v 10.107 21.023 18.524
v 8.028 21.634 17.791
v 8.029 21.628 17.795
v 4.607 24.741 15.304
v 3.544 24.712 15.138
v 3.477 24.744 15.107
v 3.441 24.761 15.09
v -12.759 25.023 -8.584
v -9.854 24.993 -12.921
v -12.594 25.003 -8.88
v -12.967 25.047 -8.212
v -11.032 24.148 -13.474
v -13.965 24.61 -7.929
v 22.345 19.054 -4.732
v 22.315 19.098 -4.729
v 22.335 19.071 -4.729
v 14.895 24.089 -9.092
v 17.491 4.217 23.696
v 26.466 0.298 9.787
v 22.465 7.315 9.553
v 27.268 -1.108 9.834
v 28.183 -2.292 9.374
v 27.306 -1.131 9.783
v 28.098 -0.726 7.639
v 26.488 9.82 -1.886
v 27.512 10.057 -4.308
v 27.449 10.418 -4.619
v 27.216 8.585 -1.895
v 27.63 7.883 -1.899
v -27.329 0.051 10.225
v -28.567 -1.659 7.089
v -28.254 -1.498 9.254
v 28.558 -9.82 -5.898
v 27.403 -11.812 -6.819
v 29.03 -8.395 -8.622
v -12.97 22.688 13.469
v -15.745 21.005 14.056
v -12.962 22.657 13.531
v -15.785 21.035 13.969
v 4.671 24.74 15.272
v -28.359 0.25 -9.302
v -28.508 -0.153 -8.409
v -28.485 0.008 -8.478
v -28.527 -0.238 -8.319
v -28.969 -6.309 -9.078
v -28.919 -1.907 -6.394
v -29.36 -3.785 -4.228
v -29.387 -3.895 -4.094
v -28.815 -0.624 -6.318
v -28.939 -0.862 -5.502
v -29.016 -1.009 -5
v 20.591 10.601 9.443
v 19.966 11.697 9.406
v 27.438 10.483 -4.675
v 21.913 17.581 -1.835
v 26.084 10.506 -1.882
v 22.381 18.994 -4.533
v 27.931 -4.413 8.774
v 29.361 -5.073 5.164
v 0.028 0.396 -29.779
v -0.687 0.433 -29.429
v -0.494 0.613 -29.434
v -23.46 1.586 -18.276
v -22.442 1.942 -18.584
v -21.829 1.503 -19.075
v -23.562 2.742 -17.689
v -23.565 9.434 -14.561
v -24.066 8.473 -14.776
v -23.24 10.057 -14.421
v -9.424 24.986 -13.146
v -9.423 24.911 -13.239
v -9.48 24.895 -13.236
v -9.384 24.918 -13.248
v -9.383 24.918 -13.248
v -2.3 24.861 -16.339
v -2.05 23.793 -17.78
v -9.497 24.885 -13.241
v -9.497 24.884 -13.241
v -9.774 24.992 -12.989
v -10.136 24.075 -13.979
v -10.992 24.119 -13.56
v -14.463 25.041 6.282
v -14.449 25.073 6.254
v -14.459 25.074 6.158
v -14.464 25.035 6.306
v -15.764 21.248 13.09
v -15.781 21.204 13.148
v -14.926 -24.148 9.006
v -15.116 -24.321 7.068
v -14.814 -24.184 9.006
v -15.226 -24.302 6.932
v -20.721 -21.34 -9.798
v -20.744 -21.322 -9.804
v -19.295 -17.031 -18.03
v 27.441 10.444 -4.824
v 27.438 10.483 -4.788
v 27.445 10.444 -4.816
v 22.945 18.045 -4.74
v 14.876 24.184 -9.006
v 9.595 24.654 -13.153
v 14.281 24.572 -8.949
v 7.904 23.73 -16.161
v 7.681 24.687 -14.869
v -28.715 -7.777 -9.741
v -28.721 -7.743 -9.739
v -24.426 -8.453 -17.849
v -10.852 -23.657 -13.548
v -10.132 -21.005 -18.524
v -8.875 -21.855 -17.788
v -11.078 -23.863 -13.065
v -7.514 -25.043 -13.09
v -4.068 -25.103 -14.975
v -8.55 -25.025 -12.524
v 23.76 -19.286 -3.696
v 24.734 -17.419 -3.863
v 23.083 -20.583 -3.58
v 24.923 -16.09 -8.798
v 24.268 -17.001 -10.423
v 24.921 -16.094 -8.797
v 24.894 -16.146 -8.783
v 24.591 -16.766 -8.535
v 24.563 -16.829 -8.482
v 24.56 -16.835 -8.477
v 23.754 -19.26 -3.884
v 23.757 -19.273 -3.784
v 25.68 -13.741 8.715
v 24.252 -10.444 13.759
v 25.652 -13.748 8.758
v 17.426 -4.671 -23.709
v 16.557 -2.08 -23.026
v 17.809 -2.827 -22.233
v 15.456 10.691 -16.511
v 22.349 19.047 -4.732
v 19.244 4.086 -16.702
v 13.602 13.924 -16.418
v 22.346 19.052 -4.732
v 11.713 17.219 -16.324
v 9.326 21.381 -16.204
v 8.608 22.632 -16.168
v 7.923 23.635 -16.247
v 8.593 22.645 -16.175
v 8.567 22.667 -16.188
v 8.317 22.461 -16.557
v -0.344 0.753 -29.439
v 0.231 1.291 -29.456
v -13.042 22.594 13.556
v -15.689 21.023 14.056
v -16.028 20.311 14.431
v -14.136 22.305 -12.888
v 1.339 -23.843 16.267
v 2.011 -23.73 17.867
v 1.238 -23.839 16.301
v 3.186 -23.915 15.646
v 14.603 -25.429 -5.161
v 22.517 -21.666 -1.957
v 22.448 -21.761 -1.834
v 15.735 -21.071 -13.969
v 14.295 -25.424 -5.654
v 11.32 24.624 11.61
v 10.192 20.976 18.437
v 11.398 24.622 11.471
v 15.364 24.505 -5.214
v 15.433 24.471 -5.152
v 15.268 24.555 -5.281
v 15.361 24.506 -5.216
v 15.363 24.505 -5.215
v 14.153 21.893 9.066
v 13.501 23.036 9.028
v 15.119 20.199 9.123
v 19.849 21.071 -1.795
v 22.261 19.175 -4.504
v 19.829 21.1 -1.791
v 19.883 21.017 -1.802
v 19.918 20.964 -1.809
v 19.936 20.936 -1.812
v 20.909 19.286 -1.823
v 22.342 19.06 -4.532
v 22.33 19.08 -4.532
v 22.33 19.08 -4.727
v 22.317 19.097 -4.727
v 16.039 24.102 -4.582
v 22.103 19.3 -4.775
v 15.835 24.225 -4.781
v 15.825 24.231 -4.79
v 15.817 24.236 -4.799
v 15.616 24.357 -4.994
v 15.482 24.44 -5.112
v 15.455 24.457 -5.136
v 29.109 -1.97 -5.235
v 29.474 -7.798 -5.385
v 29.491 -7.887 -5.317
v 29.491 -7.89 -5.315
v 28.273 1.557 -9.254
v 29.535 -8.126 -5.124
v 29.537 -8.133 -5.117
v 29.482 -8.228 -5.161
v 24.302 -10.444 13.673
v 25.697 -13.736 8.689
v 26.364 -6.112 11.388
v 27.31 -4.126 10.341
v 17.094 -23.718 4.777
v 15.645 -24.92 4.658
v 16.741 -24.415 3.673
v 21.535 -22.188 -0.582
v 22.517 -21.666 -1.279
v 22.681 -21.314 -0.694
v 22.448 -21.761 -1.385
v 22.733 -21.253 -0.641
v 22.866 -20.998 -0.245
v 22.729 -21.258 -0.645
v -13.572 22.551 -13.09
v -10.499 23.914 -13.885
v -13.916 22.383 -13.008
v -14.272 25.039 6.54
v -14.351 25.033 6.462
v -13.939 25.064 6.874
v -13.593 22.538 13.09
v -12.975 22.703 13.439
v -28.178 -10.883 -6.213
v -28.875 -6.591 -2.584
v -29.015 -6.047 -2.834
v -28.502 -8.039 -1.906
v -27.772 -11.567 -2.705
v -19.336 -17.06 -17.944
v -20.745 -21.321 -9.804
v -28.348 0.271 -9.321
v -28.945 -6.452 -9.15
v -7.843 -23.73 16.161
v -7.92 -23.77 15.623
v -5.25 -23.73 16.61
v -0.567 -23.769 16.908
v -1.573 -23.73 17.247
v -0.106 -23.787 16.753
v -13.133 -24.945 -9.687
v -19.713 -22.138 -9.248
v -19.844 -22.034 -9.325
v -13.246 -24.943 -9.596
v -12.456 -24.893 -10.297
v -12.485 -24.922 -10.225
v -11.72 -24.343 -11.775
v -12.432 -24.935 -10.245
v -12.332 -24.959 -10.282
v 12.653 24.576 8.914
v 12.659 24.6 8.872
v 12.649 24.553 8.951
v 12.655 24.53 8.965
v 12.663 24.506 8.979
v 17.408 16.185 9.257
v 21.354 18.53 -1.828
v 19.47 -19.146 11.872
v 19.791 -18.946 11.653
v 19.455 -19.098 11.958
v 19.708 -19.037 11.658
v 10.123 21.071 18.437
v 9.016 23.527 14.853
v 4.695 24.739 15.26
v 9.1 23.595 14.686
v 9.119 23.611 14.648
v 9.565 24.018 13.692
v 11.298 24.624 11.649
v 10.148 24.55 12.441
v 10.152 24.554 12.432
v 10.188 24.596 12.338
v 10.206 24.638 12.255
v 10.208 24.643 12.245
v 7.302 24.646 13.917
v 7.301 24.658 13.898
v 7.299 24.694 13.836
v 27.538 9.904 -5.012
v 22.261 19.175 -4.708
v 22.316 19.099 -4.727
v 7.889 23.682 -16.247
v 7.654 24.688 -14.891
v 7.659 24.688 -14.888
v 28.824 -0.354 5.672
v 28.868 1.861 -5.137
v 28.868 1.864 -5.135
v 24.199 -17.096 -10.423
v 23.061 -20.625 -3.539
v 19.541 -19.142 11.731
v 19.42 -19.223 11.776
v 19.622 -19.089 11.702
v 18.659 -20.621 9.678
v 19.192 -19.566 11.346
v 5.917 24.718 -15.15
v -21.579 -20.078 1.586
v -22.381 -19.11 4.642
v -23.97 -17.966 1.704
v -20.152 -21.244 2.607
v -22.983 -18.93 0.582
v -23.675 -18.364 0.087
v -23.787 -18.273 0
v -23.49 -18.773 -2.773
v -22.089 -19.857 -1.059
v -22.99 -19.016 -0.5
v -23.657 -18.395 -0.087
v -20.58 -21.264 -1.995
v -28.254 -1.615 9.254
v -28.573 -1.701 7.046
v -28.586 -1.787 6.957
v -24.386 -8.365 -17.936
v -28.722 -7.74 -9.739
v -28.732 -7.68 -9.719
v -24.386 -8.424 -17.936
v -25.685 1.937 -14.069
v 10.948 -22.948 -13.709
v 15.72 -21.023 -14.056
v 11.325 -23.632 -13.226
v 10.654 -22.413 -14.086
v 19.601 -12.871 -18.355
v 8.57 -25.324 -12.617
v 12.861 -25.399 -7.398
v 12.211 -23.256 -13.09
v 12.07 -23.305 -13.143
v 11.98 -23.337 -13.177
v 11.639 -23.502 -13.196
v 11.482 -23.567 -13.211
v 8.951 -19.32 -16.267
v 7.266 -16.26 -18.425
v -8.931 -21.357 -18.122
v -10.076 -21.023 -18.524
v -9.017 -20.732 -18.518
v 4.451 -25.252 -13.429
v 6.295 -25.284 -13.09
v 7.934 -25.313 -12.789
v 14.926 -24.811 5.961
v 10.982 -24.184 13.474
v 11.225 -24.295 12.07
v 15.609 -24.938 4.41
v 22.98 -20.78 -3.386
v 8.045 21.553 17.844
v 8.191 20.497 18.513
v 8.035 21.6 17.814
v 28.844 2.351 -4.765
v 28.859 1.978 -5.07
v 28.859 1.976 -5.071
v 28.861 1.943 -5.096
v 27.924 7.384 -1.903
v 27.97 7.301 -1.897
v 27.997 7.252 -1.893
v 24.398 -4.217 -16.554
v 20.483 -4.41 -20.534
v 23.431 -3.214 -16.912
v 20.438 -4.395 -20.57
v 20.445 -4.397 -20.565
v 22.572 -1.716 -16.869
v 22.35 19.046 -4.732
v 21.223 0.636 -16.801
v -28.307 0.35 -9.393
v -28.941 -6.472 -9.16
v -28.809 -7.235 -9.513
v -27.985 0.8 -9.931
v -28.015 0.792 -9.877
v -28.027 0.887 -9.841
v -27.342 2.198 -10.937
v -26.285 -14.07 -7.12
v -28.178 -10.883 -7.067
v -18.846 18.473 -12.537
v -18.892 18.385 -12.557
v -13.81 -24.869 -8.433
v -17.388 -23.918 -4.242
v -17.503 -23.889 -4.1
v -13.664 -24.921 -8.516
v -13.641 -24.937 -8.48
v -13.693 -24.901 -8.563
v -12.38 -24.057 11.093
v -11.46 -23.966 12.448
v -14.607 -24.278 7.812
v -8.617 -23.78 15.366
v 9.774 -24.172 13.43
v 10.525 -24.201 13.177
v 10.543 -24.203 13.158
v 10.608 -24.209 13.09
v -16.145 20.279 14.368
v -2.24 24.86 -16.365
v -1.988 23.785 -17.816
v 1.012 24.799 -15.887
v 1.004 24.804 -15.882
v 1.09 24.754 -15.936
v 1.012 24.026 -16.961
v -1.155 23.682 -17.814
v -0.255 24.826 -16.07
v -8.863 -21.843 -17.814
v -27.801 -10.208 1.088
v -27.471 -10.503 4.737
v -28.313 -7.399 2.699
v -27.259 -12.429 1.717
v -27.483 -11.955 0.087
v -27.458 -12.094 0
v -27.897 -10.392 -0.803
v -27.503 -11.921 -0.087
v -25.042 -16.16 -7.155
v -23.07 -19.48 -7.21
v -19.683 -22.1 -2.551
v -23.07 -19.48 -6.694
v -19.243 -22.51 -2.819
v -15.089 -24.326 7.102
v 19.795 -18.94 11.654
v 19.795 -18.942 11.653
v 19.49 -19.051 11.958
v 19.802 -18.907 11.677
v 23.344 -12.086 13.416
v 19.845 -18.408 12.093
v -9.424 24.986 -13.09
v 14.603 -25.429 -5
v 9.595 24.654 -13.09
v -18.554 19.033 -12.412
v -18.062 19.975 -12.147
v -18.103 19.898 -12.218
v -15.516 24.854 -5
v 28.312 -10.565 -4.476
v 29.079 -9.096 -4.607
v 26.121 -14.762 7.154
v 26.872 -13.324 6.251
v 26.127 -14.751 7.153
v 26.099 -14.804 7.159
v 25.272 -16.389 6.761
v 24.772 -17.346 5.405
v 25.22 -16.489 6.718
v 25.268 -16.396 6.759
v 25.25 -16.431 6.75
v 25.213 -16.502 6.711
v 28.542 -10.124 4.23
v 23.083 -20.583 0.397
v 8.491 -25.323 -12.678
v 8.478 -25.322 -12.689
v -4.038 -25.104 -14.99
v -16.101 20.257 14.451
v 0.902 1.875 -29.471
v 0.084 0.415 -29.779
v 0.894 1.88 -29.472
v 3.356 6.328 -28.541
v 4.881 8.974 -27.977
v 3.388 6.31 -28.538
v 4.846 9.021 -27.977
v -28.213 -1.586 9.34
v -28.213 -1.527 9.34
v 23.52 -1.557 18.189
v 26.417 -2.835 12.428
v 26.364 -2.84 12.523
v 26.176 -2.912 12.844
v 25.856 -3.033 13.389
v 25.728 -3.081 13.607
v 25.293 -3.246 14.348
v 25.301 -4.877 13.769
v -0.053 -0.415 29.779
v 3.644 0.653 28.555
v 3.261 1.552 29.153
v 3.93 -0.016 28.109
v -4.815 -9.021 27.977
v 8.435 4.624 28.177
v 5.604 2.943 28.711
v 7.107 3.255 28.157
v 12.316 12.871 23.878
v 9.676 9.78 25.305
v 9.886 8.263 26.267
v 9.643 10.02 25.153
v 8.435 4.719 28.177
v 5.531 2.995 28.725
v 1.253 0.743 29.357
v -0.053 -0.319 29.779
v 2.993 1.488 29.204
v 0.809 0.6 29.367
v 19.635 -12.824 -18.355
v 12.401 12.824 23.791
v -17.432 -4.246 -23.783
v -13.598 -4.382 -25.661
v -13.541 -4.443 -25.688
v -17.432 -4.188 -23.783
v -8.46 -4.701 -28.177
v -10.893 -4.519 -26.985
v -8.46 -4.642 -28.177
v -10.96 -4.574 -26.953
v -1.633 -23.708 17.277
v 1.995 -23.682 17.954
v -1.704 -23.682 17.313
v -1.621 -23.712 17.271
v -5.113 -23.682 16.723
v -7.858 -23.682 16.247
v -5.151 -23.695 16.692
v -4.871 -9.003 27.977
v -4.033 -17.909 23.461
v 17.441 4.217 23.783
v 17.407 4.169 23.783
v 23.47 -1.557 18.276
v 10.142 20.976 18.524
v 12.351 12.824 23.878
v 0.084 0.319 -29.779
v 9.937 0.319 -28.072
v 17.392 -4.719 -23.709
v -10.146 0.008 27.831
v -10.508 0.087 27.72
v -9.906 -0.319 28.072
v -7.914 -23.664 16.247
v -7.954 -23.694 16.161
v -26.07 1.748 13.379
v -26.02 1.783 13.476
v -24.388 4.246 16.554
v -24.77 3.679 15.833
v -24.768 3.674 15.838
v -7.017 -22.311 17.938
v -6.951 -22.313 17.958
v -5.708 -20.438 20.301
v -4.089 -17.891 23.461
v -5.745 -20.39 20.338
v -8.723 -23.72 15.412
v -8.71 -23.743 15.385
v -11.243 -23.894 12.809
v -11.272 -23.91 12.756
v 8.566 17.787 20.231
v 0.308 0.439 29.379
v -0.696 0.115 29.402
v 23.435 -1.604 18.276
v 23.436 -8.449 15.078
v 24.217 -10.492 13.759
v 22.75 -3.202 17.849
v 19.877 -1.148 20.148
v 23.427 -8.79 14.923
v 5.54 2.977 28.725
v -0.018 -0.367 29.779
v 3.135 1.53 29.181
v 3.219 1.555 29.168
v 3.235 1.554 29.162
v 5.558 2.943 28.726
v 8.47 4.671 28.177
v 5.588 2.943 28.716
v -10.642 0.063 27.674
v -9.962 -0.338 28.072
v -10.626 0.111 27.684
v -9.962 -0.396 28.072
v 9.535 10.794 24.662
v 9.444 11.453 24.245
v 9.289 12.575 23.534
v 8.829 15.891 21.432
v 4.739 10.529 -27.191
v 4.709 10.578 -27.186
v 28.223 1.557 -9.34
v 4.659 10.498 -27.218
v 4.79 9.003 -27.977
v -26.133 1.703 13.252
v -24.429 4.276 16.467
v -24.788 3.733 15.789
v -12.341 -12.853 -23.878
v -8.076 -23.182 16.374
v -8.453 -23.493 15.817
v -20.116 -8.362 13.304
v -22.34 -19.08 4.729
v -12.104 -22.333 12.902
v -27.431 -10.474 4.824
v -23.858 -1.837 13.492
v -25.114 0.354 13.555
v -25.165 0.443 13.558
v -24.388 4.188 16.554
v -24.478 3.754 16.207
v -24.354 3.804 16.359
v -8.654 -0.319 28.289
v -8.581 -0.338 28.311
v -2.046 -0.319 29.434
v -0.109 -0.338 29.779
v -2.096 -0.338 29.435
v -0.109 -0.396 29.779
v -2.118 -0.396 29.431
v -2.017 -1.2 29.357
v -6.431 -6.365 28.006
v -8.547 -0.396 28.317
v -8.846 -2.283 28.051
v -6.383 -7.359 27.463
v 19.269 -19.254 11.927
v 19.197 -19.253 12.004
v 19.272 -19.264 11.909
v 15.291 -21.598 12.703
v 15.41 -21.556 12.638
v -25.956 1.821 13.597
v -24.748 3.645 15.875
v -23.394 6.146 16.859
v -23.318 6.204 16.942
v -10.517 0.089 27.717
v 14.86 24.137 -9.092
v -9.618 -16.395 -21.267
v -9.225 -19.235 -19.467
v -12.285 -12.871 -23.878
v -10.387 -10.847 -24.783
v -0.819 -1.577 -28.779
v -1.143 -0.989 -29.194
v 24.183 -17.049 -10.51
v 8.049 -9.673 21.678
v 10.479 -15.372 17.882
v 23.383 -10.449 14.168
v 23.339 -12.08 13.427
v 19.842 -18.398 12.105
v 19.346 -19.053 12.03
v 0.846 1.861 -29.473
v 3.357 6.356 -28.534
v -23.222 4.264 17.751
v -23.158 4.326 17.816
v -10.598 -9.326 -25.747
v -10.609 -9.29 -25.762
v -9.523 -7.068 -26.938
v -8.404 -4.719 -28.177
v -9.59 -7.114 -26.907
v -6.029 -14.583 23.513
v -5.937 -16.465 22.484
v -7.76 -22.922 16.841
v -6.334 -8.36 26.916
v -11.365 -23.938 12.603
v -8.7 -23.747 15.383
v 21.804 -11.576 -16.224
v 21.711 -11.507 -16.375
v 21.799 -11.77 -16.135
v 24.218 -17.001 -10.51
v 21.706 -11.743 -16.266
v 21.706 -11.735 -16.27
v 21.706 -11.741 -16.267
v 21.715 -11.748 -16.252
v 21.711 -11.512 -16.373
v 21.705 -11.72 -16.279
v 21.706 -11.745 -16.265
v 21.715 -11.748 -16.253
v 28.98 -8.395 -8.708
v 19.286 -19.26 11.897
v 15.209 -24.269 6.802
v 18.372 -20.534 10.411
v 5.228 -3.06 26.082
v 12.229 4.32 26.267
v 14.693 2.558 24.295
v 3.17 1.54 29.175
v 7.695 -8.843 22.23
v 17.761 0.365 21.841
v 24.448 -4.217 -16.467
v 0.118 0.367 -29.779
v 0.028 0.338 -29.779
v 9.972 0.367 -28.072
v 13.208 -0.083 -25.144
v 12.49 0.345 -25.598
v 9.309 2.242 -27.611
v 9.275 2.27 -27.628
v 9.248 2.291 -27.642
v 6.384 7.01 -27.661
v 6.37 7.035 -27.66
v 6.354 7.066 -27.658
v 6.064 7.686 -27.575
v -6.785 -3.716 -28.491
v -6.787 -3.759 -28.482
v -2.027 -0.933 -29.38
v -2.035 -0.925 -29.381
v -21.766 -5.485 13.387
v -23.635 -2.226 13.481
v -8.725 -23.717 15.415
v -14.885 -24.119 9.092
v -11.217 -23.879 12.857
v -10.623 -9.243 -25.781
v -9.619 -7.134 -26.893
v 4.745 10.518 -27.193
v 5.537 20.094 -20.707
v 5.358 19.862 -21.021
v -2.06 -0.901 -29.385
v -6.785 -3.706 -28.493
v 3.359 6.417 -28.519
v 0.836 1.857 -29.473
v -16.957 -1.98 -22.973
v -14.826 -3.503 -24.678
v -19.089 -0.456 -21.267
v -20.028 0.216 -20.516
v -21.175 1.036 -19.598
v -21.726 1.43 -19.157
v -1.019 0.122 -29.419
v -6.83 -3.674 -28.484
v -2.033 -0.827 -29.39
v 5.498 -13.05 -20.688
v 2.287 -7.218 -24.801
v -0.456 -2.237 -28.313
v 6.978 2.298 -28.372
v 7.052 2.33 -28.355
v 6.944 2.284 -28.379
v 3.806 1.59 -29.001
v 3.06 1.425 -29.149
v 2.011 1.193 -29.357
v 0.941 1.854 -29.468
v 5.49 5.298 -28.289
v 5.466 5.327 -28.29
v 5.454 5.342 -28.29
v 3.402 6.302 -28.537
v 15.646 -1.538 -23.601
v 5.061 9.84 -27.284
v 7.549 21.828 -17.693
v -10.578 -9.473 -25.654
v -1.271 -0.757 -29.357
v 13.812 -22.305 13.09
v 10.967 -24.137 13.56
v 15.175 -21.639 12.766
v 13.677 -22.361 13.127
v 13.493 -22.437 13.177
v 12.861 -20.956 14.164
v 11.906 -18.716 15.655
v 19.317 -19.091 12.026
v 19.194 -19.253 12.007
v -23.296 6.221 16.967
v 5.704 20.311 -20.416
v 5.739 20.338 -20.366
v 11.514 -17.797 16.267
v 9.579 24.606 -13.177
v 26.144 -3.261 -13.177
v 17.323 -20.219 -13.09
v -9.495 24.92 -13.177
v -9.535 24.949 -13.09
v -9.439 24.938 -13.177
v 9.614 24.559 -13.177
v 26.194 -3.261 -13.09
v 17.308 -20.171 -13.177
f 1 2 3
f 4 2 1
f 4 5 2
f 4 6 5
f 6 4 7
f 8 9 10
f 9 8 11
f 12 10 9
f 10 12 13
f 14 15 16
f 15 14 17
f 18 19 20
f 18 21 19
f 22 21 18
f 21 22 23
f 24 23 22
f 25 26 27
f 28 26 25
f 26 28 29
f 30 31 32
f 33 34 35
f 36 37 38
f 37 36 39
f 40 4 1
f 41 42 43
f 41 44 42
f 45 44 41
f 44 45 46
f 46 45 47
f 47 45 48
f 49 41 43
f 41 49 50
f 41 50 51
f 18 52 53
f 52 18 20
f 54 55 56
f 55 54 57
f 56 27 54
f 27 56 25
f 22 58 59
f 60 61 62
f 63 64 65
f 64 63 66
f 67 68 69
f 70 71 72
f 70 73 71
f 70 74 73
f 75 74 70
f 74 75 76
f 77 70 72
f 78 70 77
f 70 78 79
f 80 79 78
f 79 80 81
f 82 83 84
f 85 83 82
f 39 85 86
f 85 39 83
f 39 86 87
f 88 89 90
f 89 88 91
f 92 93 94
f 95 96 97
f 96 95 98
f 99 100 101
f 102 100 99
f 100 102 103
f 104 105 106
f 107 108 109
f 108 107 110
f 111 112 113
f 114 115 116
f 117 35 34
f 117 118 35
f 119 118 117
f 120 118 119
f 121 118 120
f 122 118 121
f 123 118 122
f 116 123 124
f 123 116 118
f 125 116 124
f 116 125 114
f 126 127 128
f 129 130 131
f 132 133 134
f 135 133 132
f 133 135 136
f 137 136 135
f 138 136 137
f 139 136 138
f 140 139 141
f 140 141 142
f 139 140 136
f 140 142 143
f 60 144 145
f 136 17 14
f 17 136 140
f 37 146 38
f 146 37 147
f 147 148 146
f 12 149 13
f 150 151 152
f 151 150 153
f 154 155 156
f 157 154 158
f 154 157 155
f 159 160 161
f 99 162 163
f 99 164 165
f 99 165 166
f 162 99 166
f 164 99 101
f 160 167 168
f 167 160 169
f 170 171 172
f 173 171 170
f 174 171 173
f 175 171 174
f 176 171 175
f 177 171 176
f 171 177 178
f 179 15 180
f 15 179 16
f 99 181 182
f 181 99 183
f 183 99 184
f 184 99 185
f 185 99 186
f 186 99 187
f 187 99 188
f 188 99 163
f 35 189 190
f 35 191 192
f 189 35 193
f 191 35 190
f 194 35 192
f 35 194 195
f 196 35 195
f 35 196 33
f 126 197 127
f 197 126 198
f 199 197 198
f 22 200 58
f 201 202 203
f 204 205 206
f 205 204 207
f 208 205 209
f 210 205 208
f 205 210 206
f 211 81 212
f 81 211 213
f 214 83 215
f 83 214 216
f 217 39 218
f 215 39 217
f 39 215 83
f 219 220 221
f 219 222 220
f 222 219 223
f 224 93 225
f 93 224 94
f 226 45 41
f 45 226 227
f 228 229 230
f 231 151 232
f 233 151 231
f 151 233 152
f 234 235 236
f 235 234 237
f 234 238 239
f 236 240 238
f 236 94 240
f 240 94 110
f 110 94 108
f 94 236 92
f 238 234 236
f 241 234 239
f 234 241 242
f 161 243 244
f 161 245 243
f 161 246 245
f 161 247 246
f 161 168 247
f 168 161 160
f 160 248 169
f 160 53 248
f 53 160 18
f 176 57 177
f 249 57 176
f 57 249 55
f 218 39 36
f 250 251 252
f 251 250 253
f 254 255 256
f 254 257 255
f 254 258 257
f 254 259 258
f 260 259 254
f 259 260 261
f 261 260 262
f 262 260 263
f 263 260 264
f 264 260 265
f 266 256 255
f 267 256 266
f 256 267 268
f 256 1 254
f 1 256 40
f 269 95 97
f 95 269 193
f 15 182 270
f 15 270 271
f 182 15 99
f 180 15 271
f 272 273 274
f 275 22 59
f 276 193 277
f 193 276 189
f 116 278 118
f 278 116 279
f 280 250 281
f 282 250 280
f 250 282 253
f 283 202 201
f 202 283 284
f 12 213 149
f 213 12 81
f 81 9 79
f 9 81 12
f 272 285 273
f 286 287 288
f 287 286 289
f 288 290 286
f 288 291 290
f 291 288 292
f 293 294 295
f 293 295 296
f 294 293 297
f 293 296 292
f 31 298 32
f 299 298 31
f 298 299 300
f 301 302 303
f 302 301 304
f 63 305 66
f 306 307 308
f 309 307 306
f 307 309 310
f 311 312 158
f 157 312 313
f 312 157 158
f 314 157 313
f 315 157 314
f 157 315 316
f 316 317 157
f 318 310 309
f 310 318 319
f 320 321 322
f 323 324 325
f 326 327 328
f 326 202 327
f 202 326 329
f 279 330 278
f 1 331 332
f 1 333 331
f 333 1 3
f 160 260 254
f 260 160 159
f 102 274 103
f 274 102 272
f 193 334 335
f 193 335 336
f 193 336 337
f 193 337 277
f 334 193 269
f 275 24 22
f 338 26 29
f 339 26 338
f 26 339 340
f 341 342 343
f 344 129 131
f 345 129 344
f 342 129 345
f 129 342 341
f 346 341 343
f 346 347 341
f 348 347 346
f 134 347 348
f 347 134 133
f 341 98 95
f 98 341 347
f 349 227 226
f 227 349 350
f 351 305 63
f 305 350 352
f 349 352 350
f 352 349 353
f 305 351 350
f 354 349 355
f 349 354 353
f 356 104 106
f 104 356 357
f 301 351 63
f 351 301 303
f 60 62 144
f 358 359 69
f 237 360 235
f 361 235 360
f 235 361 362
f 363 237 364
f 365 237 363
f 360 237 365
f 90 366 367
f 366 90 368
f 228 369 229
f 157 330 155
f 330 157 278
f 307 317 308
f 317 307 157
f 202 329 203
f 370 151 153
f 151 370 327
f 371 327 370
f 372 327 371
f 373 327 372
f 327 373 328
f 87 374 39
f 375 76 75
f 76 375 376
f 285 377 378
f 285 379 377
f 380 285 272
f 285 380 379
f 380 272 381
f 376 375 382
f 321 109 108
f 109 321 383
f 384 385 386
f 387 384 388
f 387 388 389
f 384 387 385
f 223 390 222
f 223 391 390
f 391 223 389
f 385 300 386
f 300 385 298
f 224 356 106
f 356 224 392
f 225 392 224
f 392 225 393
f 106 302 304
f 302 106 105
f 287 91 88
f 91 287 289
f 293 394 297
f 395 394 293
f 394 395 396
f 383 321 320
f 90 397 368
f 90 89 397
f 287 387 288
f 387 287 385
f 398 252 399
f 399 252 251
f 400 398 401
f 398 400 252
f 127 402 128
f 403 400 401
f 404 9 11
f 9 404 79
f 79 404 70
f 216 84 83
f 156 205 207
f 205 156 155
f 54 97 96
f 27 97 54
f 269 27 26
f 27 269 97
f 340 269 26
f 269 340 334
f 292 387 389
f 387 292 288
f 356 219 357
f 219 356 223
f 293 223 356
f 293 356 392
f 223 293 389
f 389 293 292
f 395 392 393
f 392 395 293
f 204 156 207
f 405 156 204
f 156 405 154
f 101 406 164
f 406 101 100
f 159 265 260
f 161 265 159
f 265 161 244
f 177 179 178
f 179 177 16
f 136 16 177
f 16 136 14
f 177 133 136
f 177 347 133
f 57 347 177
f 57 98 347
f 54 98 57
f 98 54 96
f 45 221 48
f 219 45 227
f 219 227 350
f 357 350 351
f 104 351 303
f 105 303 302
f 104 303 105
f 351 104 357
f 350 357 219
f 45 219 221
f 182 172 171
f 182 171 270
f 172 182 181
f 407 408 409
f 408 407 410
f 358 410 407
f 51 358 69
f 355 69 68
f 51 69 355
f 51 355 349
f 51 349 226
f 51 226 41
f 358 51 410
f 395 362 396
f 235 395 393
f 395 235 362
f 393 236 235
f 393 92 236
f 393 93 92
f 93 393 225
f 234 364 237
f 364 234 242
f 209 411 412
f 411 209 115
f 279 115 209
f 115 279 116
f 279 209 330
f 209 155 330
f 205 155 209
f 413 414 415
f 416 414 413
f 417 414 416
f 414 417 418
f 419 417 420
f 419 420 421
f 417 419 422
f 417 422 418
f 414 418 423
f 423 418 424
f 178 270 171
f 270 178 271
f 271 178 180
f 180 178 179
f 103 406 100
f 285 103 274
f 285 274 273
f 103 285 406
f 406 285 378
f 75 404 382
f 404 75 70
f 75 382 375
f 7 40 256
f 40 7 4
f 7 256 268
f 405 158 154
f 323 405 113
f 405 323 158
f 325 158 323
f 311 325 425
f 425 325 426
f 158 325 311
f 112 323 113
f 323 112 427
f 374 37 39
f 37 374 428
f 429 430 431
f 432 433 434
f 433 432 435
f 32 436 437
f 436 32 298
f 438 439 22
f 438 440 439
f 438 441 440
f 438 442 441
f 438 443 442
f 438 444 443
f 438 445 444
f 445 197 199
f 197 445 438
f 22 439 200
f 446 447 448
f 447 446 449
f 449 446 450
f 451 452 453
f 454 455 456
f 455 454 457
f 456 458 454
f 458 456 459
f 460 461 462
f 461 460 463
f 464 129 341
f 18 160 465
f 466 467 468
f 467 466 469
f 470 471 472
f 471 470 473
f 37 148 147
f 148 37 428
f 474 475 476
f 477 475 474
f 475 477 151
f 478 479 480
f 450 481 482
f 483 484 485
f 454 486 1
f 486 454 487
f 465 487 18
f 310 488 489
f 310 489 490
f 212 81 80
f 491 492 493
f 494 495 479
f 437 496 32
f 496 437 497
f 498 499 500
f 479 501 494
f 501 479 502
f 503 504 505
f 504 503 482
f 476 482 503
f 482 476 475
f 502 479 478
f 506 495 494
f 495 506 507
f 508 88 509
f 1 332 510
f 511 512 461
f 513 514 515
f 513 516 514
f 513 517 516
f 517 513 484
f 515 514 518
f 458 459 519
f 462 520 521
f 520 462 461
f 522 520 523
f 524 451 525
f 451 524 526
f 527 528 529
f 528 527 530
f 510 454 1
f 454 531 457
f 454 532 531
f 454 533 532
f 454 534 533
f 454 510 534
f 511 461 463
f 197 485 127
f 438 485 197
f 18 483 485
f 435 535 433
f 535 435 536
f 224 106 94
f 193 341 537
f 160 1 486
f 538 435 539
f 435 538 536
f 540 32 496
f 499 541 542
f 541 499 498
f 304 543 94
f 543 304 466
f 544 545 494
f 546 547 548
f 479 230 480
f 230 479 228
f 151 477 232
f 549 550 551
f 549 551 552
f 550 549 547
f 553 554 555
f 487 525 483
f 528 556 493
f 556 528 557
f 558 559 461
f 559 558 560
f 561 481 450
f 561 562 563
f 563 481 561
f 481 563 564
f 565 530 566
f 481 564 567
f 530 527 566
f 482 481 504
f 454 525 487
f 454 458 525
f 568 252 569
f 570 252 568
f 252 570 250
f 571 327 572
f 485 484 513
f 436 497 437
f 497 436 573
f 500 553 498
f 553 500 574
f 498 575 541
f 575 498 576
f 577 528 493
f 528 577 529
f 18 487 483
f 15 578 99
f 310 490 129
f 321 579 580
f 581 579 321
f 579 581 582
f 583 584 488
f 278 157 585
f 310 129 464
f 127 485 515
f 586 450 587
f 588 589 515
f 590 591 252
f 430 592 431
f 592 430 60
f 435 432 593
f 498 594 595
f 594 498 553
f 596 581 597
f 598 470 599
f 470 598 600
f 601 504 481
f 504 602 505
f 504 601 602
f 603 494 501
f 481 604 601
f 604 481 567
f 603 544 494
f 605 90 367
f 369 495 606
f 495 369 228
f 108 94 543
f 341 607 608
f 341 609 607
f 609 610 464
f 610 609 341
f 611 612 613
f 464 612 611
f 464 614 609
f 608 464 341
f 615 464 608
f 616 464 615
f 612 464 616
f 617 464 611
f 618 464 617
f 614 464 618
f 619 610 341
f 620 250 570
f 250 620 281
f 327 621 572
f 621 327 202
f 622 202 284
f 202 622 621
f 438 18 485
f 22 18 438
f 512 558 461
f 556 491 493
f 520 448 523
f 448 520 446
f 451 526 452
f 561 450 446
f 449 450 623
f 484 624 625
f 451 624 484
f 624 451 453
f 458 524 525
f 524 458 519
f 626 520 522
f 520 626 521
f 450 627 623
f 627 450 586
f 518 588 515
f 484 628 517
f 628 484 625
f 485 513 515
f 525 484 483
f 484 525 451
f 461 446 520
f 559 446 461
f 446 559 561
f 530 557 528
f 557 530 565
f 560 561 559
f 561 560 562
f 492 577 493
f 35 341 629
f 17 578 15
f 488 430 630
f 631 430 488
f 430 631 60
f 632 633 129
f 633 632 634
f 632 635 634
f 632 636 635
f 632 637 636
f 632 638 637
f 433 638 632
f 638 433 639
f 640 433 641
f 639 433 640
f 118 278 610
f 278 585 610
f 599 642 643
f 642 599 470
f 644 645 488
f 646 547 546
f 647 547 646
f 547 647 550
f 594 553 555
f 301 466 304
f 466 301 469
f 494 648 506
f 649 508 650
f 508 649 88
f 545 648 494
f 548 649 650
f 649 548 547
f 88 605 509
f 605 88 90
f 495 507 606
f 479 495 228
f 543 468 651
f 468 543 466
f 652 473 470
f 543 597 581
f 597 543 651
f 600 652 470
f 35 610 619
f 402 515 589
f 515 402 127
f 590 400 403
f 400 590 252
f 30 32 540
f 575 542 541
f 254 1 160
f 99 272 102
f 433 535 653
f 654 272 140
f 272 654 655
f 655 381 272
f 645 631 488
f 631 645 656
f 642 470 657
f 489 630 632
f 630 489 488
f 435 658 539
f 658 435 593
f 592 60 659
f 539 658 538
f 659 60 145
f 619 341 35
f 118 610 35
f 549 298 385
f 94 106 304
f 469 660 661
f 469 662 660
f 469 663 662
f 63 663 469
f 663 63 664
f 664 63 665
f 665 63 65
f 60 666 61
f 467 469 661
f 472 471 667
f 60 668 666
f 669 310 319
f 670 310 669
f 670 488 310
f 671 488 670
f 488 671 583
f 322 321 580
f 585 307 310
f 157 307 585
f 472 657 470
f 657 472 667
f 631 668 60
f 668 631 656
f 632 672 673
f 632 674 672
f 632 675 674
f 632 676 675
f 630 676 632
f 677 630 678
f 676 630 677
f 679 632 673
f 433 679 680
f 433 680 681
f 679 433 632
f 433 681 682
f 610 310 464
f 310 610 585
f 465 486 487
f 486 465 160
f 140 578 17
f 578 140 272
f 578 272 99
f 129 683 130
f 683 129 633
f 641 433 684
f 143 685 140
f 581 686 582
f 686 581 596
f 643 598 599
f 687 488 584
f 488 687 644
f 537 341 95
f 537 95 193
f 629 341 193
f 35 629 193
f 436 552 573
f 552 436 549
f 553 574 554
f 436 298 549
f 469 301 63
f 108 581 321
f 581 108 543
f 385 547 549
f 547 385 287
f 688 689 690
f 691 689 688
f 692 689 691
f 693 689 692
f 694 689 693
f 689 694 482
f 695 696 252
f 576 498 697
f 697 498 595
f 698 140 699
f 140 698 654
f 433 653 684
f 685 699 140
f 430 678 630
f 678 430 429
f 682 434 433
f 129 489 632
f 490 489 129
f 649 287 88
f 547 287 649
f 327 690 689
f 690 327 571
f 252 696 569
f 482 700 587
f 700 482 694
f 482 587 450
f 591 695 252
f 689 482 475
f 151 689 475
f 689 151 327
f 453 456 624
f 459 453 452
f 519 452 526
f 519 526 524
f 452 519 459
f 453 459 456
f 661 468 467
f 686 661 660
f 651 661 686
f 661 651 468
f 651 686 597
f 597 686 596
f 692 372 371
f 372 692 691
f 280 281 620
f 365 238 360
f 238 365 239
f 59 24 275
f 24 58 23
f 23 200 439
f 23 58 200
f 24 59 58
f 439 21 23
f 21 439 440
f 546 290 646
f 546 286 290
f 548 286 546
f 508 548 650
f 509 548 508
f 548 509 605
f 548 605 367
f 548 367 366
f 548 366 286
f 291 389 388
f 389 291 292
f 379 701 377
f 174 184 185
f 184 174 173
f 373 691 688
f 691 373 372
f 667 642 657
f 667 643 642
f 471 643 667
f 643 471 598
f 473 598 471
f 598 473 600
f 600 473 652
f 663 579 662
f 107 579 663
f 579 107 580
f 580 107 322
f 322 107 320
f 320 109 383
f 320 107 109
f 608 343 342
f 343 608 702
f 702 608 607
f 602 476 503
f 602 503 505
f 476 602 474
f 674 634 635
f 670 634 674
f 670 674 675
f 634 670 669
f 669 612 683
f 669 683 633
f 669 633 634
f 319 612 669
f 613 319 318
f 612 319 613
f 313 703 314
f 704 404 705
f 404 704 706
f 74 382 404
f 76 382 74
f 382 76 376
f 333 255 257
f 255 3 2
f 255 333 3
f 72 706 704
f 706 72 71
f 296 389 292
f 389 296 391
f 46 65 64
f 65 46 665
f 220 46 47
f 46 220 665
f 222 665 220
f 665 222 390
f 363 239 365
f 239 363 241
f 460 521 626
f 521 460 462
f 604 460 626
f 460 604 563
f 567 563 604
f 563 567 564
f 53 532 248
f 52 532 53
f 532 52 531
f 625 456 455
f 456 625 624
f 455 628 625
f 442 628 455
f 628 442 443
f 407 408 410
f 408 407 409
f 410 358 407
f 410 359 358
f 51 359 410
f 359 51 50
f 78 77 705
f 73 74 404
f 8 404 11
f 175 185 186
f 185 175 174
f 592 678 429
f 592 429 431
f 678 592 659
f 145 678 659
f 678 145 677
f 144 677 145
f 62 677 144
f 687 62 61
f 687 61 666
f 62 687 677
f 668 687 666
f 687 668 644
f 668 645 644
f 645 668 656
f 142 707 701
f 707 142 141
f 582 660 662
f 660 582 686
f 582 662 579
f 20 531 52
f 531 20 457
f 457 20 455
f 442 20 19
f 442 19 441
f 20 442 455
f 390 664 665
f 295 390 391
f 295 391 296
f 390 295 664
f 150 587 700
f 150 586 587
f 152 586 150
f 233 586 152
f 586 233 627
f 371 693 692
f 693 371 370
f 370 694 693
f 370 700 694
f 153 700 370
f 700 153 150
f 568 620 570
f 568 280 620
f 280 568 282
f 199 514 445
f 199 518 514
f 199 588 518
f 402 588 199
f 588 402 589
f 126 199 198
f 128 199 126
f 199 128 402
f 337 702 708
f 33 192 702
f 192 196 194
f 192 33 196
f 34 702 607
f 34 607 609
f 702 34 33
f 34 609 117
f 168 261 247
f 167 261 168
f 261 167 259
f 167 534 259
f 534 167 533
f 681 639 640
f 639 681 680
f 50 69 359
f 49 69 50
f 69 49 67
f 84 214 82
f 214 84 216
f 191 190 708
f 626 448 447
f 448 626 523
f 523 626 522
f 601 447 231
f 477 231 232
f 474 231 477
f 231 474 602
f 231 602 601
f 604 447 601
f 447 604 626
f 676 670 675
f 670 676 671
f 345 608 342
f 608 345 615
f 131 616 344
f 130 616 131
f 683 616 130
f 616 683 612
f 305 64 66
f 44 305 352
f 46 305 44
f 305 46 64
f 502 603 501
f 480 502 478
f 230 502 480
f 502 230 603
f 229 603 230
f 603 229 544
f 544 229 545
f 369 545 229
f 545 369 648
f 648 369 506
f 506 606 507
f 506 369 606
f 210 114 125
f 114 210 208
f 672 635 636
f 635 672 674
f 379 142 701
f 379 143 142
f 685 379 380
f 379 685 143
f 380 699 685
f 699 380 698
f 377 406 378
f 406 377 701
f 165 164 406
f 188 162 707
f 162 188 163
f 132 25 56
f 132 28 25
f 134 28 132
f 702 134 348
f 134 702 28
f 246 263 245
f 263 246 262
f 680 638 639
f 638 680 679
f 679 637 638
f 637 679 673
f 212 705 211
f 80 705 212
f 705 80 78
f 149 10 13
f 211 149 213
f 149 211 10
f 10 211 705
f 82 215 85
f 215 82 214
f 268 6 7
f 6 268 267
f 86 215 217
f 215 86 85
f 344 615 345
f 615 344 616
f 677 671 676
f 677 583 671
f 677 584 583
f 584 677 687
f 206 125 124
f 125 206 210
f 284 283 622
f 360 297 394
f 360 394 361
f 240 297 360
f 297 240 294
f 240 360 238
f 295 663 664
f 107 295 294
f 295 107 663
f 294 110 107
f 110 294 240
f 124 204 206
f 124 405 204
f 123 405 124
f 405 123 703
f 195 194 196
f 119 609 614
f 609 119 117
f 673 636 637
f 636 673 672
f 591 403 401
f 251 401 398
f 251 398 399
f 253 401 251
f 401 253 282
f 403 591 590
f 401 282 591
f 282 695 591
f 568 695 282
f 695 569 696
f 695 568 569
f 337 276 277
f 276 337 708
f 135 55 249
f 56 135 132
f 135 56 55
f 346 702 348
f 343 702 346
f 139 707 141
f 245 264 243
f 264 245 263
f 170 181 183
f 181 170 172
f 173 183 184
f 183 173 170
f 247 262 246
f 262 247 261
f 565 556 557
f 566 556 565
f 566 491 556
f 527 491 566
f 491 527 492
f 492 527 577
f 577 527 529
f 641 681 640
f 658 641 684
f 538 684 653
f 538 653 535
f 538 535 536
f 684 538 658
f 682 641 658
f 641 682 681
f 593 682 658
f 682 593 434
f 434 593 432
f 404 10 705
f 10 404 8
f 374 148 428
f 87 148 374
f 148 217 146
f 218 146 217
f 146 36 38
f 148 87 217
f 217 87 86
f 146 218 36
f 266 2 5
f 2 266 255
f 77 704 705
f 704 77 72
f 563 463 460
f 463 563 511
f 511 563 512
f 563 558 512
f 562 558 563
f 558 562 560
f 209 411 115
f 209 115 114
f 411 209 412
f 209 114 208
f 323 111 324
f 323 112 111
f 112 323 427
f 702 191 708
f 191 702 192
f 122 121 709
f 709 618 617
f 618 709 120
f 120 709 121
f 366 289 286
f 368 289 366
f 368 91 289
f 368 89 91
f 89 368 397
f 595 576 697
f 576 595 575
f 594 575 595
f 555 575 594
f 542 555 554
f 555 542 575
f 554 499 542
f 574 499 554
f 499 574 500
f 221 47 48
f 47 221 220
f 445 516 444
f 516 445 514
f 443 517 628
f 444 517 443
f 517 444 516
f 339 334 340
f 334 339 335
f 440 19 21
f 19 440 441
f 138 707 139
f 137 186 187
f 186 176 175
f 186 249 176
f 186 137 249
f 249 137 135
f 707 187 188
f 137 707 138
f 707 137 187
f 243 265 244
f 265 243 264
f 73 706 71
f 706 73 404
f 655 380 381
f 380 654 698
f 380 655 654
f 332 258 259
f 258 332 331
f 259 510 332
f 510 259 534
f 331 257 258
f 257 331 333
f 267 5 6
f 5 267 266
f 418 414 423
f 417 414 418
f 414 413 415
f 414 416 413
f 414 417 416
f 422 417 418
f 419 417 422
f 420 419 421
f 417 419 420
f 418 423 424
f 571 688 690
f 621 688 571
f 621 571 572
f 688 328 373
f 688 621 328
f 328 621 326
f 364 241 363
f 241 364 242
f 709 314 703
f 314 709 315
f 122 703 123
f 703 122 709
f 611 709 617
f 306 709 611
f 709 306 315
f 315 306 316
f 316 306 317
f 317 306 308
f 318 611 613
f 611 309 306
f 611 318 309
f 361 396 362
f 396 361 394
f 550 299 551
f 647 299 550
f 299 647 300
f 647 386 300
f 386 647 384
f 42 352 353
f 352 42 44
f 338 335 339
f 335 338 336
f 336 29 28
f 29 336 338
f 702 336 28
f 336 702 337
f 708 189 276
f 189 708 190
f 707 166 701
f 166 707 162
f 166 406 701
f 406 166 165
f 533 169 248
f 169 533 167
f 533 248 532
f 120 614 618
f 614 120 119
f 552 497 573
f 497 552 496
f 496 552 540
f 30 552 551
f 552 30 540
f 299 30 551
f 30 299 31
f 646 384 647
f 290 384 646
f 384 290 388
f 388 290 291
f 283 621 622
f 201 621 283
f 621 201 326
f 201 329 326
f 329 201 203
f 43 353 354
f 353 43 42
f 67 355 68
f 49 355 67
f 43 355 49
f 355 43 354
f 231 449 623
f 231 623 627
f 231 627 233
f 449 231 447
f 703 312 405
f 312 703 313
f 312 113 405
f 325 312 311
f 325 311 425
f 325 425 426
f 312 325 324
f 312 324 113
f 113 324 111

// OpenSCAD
// Auto-generated OpenSCAD file

    inner_points = 10*[[2.2229828118084516, 1.9079774760679746, 7.77589516412924e-13], [-2.809733759198869, -1.0823860047076879, -7.725143262255779e-13], [2.733797877554801, 1.0482868522930302, 7.725143262255779e-13], [-2.29891869345252, -1.9420766284826323, -7.77589516412924e-13], [0.3918773710660971, 0.23835795666625434, -2.92705098312471], [-0.46781325270884755, -0.2724571090800944, -2.9270509831249747], [0.3918773710647796, 0.23835795666543694, 2.9270509831249747], [-0.46781325271016505, -0.2724571090809118, 2.92705098312471], [-1.5331496812097525, 2.4993087092964017, -0.4999999999999851], [1.4572137995659098, -2.533407861710919, -0.5000000000000149], [-1.5331496812099776, 2.499308709296262, 0.5000000000000149], [1.4572137995656846, -2.533407861711059, 0.4999999999999851], [1.5440657299857556, 2.4456312643083966, -0.4999999999993001], [-2.957332815719052, -0.22903114387051052, -0.5000000000006866], [2.8813969340752084, 0.19493199145599246, -0.49999999999931344], [-1.6200016116295983, -2.479730416722914, -0.5000000000006999], [1.5440657299855305, 2.4456312643082567, 0.5000000000006999], [-2.9573328157192766, -0.22903114387064996, 0.49999999999931344], [2.8813969340749837, 0.19493199145585302, 0.5000000000006866], [-1.6200016116298235, -2.479730416723054, 0.4999999999993001], [0.8319741627315825, 1.0814613377252358, -2.618033988749546], [-1.4187251101208207, -0.2558698663642176, -2.618033988750239], [1.3427892284779315, 0.22177071395029133, -2.6180339887495507], [-0.907910044374472, -1.1155604901391623, -2.618033988750244], [0.8319741627304039, 1.0814613377245046, 2.618033988750244], [-1.4187251101219993, -0.2558698663649488, 2.6180339887495507], [1.3427892284767529, 0.22177071394956013, 2.618033988750239], [-0.9079100443756506, -1.1155604901398934, 2.618033988749546], [-0.9454538330237207, 2.489057229518432, -1.3090169943748018], [-1.805144456798665, 1.9782421637720828, -1.3090169943750665], [1.7292085751551864, -2.012341316186375, -1.3090169943748284], [0.8695179513802419, -2.523156381932724, -1.3090169943750931], [-0.94545383302431, 2.4890572295180666, 1.3090169943750931], [-1.8051444567992543, 1.9782421637717174, 1.3090169943748284], [1.7292085751545971, -2.0123413161867405, 1.3090169943750665], [0.8695179513796526, -2.5231563819330893, 1.3090169943748018], [0.9563698818000872, 2.455882744086592, -1.3090169943743784], [-2.6853380401297753, 0.29203540165403374, -1.3090169943755001], [2.6094021584862968, -0.3261345540683255, -1.3090169943743948], [-1.0323057634435657, -2.4899818965008835, -1.3090169943755166], [0.9563698817994977, 2.4558827440862263, 1.3090169943755166], [-2.685338040130365, 0.29203540165366804, 1.3090169943743948], [2.609402158485707, -0.3261345540686912, 1.3090169943755001], [-1.0323057634441553, -2.489981896501249, 1.3090169943743784], [0.6843751062111746, 1.9348161985622732, -2.1180339887494597], [-2.097642191943743, 0.28178392187606416, -2.118033988750317], [2.0217063103006283, -0.3158830742901302, -2.118033988749473], [-0.7603109878542894, -1.9689153509763393, -2.11803398875033], [0.6843751062102214, 1.9348161985616816, 2.11803398875033], [-2.0976421919446966, 0.28178392187547274, 2.118033988749473], [2.021706310299675, -0.3158830742907216, 2.118033988750317], [-0.7603109878552426, -1.9689153509769308, 2.1180339887494597], [0.005458024388253095, 2.472469986802555, -1.6180339887495376], [-2.245241248464151, 1.1351387827131016, -1.6180339887502309], [2.169305366820811, -1.1692379351273074, -1.618033988749559], [-0.08139390603159274, -2.5065691392167606, -1.6180339887502522], [0.005458024387524789, 2.4724699868021034, 1.6180339887502522], [-2.2452412484648794, 1.1351387827126498, 1.618033988749559], [2.169305366820083, -1.1692379351277593, 1.6180339887502309], [-0.08139390603232105, -2.5065691392172122, 1.6180339887495376], [-0.03809330901262526, 1.5669381064022805, -2.703444185374642], [-1.429101958090084, 0.7404219680591758, -2.7034441853750706], [-0.038093309013842065, 1.5669381064015255, 2.7034441853750844], [-1.4291019580913007, 0.7404219680584209, 2.703444185374656], [2.5137216919096725, -1.6455455015429499, -0.8090169943746006], [2.5137216919093084, -1.645545501543176, 0.8090169943752943], [-0.7170103908355473, 2.1045918946425624, -2.2034441853747198], [-1.5767010146104916, 1.5937768288962129, -2.2034441853749844], [-0.717010390836539, 2.1045918946419473, 2.2034441853750066], [-1.5767010146114833, 1.5937768288955976, 2.203444185374742], [2.9538184835751577, -0.8024421204839683, -0.4999999999994364], [2.9538184835749326, -0.802442120484108, 0.5000000000005637], [-0.4781901006781107, 0.723834725343299, -3.012461179749806], [-0.47819010067946655, 0.7238347253424577, 3.012461179749815], [2.241726916320396, -2.166612047067494, 2.129075466538872e-13]];

    outer_points = 10*[[0.4830693605864632, 0.897366776381505, -2.7890866460763384], [-0.40484035713075717, -1.786116072619009, 2.3374176174108023], [0.40484035713075717, 1.786116072619009, -2.3374176174108023], [-0.4830693605864632, -0.897366776381505, 2.7890866460763384], [2.9599481176661713, 0.22919679777286445, 0.061671925762529], [2.8082750305152753, -0.22919679777286445, 0.9373834000488804], [-2.8082750305152753, 0.22919679777286445, -0.9373834000488804], [-2.9599481176661713, -0.22919679777286445, -0.061671925762529], [0.7216453547367727, -2.601414501303498, -1.2367287625857242], [0.2636847917889711, 2.601414501303498, 1.4073877862192727], [-0.2636847917889711, -2.601414501303498, -1.4073877862192727], [-0.7216453547367727, 2.601414501303498, 1.2367287625857242], [0.9921534655790782, 0.03670208085032334, -2.7985553265591845], [0.19798287089973665, -2.363477945877658, 1.786729481480711], [0.7873472756260071, 2.363477945877658, -1.616070457847162], [-0.006823319053334498, -0.03670208085032334, 2.9692143501927335], [0.006823319053334498, 0.03670208085032334, -2.9692143501927335], [-0.7873472756260071, -2.363477945877658, 1.616070457847162], [-0.19798287089973665, 2.363477945877658, -1.786729481480711], [-0.9921534655790782, -0.03670208085032334, 2.7985553265591845], [2.817284964142, 0.15567035856324335, -0.9253645919832395], [2.420199666802329, -1.0444196548007474, 1.3672778120367086], [2.7390559606862936, 1.0444196548007474, -0.4736955633177039], [2.341970663346623, -0.15567035856324335, 1.8189468407022442], [-2.341970663346623, 0.15567035856324335, -1.8189468407022442], [-2.7390559606862936, -1.0444196548007474, 0.4736955633177039], [-2.420199666802329, 1.0444196548007474, -1.3672778120367086], [-2.817284964142, -0.15567035856324335, 0.9253645919832395], [1.5704566404006748, -2.09757906725447, -1.3969450436754474], [1.4187835532497788, -2.5559726628001993, -0.5212335693890959], [1.1608442604945326, 2.5559726628001993, 0.9680246937485981], [1.0091711733436366, 2.09757906725447, 1.8437361680349498], [-1.0091711733436366, -2.09757906725447, -1.8437361680349498], [-1.1608442604945326, -2.5559726628001993, -0.9680246937485981], [-1.4187835532497788, 2.5559726628001993, 0.5212335693890959], [-1.5704566404006748, 2.09757906725447, 1.3969450436754474], [1.7376398471337438, -0.4671333531987044, -2.362206944743508], [1.0951423396052982, -2.4089197843809567, 1.3473663890100358], [1.4844854741390132, 2.4089197843809567, -0.9005752646505334], [0.8419879666105676, 0.4671333531987044, 2.8089980691030103], [-0.8419879666105676, -0.4671333531987044, -2.8089980691030103], [-1.4844854741390132, -2.4089197843809567, 0.9005752646505334], [-1.0951423396052982, 2.4089197843809567, -1.3473663890100358], [-1.7376398471337438, 0.4671333531987044, 2.362206944743508], [2.43477804564675, -0.42169151469540556, -1.64671175154688], [1.9439536252692002, -1.9050843503319292, 1.187150107920313], [2.2299718556936785, 1.9050843503319292, -0.46422688283485714], [1.7391474353161291, 0.42169151469540556, 2.369634976632336], [-1.7391474353161291, -0.42169151469540556, -2.369634976632336], [-2.2299718556936785, -1.9050843503319292, 0.46422688283485714], [-1.9439536252692002, 1.9050843503319292, -1.187150107920313], [-2.43477804564675, 0.42169151469540556, 1.64671175154688], [1.9585320041136212, -1.282356210226587, -1.8268394556632752], [1.5614467067739504, -2.4824462235905775, 0.4658029483566726], [1.6271486276631848, 2.4824462235905775, 0.08646125309523445], [1.230063330323514, 1.282356210226587, 2.379103657115182], [-1.230063330323514, -1.282356210226587, -2.379103657115182], [-1.6271486276631848, -2.4824462235905775, -0.08646125309523445], [-1.5614467067739504, 2.4824462235905775, -0.4658029483566726], [-1.9585320041136212, 1.282356210226587, 1.8268394556632752], [2.893023683190555, -0.839453603454857, -0.8621827381462208], [2.6476114730017803, -1.5811500212731189, 0.5547481915873755], [-2.4345464274086126, -0.839453603454857, -1.7849170283939584], [-2.6799586375973874, -1.5811500212731189, -0.36798609866036214], [0.7922100146892382, 3.026926073605983, 0.16658119750574993], [-0.8020876525293293, 3.026926073605983, -0.10955090322020358], [2.4167776416574265, -1.7001182989860388, -1.0423104422626164], [2.26510455450653, -2.1585118945317676, -0.166598967976265], [-1.9254623224159977, -1.7001182989860388, -1.7943857088768054], [-2.077135409566894, -2.1585118945317676, -0.9186742345904539], [0.6495468611650667, 2.9533996343963618, -0.8204553202400185], [-0.33578328536067714, 2.9533996343963618, -0.9911143438735673], [3.0356868367147265, -0.7659271642452358, 0.12485377959954758], [-2.900850794577265, -0.7659271642452358, -0.9033535877405948], [-0.10494945401632327, 3.0723679121092817, 0.6059442899764248]];

    // Convex hull for inner set (I)
    module inner_hull() {
        hull() {
            for (p = inner_points) {
                translate(p) sphere(r=0.1);
            }
        }
    }

    // Convex hull for outer set (O) minus inner hull (O \ I)
    module outer_minus_inner() {
        difference() {
            hull() {
                for (p = outer_points) {
                    translate(p) sphere(r=0.1);
                }
            }
            inner_hull(); // Subtract inner hull
        }
    }

    // Convex hull for outer set (O) minus all translated inner hulls
    module outer_minus_AllTranslationInner() {
        difference() {
            hull() {
                for (p = outer_points) {
                    translate(p) sphere(r=0.1);
                }
            }
            hull() {
                translate([0,0,50]) inner_hull();
                translate([0,0,-50]) inner_hull();
            }; // Subtract translated inner hulls
        }
    }

    // Difference between outer_minus_inner and outer_minus_AllTranslationInner
    module outer_minus_inner_diff() {
        difference() {
            // Outer minus inner
            difference() {
                hull() {
                    for (p = outer_points) {
                        translate(p) sphere(r=0.1);
                    }
                }
                inner_hull();
            }

            // Subtract Outer minus AllTranslationInner
            difference() {
                hull() {
                    for (p = outer_points) {
                        translate(p) sphere(r=0.1);
                    }
                }
                hull() {
                    translate([0,0,50]) inner_hull();
                    translate([0,0,-50]) inner_hull();
                };
            }
        }
    }

    // Rendering all with colors applied
    color([1, 1, 0, 1]) outer_minus_inner_diff(); // Opaque yellow
    
